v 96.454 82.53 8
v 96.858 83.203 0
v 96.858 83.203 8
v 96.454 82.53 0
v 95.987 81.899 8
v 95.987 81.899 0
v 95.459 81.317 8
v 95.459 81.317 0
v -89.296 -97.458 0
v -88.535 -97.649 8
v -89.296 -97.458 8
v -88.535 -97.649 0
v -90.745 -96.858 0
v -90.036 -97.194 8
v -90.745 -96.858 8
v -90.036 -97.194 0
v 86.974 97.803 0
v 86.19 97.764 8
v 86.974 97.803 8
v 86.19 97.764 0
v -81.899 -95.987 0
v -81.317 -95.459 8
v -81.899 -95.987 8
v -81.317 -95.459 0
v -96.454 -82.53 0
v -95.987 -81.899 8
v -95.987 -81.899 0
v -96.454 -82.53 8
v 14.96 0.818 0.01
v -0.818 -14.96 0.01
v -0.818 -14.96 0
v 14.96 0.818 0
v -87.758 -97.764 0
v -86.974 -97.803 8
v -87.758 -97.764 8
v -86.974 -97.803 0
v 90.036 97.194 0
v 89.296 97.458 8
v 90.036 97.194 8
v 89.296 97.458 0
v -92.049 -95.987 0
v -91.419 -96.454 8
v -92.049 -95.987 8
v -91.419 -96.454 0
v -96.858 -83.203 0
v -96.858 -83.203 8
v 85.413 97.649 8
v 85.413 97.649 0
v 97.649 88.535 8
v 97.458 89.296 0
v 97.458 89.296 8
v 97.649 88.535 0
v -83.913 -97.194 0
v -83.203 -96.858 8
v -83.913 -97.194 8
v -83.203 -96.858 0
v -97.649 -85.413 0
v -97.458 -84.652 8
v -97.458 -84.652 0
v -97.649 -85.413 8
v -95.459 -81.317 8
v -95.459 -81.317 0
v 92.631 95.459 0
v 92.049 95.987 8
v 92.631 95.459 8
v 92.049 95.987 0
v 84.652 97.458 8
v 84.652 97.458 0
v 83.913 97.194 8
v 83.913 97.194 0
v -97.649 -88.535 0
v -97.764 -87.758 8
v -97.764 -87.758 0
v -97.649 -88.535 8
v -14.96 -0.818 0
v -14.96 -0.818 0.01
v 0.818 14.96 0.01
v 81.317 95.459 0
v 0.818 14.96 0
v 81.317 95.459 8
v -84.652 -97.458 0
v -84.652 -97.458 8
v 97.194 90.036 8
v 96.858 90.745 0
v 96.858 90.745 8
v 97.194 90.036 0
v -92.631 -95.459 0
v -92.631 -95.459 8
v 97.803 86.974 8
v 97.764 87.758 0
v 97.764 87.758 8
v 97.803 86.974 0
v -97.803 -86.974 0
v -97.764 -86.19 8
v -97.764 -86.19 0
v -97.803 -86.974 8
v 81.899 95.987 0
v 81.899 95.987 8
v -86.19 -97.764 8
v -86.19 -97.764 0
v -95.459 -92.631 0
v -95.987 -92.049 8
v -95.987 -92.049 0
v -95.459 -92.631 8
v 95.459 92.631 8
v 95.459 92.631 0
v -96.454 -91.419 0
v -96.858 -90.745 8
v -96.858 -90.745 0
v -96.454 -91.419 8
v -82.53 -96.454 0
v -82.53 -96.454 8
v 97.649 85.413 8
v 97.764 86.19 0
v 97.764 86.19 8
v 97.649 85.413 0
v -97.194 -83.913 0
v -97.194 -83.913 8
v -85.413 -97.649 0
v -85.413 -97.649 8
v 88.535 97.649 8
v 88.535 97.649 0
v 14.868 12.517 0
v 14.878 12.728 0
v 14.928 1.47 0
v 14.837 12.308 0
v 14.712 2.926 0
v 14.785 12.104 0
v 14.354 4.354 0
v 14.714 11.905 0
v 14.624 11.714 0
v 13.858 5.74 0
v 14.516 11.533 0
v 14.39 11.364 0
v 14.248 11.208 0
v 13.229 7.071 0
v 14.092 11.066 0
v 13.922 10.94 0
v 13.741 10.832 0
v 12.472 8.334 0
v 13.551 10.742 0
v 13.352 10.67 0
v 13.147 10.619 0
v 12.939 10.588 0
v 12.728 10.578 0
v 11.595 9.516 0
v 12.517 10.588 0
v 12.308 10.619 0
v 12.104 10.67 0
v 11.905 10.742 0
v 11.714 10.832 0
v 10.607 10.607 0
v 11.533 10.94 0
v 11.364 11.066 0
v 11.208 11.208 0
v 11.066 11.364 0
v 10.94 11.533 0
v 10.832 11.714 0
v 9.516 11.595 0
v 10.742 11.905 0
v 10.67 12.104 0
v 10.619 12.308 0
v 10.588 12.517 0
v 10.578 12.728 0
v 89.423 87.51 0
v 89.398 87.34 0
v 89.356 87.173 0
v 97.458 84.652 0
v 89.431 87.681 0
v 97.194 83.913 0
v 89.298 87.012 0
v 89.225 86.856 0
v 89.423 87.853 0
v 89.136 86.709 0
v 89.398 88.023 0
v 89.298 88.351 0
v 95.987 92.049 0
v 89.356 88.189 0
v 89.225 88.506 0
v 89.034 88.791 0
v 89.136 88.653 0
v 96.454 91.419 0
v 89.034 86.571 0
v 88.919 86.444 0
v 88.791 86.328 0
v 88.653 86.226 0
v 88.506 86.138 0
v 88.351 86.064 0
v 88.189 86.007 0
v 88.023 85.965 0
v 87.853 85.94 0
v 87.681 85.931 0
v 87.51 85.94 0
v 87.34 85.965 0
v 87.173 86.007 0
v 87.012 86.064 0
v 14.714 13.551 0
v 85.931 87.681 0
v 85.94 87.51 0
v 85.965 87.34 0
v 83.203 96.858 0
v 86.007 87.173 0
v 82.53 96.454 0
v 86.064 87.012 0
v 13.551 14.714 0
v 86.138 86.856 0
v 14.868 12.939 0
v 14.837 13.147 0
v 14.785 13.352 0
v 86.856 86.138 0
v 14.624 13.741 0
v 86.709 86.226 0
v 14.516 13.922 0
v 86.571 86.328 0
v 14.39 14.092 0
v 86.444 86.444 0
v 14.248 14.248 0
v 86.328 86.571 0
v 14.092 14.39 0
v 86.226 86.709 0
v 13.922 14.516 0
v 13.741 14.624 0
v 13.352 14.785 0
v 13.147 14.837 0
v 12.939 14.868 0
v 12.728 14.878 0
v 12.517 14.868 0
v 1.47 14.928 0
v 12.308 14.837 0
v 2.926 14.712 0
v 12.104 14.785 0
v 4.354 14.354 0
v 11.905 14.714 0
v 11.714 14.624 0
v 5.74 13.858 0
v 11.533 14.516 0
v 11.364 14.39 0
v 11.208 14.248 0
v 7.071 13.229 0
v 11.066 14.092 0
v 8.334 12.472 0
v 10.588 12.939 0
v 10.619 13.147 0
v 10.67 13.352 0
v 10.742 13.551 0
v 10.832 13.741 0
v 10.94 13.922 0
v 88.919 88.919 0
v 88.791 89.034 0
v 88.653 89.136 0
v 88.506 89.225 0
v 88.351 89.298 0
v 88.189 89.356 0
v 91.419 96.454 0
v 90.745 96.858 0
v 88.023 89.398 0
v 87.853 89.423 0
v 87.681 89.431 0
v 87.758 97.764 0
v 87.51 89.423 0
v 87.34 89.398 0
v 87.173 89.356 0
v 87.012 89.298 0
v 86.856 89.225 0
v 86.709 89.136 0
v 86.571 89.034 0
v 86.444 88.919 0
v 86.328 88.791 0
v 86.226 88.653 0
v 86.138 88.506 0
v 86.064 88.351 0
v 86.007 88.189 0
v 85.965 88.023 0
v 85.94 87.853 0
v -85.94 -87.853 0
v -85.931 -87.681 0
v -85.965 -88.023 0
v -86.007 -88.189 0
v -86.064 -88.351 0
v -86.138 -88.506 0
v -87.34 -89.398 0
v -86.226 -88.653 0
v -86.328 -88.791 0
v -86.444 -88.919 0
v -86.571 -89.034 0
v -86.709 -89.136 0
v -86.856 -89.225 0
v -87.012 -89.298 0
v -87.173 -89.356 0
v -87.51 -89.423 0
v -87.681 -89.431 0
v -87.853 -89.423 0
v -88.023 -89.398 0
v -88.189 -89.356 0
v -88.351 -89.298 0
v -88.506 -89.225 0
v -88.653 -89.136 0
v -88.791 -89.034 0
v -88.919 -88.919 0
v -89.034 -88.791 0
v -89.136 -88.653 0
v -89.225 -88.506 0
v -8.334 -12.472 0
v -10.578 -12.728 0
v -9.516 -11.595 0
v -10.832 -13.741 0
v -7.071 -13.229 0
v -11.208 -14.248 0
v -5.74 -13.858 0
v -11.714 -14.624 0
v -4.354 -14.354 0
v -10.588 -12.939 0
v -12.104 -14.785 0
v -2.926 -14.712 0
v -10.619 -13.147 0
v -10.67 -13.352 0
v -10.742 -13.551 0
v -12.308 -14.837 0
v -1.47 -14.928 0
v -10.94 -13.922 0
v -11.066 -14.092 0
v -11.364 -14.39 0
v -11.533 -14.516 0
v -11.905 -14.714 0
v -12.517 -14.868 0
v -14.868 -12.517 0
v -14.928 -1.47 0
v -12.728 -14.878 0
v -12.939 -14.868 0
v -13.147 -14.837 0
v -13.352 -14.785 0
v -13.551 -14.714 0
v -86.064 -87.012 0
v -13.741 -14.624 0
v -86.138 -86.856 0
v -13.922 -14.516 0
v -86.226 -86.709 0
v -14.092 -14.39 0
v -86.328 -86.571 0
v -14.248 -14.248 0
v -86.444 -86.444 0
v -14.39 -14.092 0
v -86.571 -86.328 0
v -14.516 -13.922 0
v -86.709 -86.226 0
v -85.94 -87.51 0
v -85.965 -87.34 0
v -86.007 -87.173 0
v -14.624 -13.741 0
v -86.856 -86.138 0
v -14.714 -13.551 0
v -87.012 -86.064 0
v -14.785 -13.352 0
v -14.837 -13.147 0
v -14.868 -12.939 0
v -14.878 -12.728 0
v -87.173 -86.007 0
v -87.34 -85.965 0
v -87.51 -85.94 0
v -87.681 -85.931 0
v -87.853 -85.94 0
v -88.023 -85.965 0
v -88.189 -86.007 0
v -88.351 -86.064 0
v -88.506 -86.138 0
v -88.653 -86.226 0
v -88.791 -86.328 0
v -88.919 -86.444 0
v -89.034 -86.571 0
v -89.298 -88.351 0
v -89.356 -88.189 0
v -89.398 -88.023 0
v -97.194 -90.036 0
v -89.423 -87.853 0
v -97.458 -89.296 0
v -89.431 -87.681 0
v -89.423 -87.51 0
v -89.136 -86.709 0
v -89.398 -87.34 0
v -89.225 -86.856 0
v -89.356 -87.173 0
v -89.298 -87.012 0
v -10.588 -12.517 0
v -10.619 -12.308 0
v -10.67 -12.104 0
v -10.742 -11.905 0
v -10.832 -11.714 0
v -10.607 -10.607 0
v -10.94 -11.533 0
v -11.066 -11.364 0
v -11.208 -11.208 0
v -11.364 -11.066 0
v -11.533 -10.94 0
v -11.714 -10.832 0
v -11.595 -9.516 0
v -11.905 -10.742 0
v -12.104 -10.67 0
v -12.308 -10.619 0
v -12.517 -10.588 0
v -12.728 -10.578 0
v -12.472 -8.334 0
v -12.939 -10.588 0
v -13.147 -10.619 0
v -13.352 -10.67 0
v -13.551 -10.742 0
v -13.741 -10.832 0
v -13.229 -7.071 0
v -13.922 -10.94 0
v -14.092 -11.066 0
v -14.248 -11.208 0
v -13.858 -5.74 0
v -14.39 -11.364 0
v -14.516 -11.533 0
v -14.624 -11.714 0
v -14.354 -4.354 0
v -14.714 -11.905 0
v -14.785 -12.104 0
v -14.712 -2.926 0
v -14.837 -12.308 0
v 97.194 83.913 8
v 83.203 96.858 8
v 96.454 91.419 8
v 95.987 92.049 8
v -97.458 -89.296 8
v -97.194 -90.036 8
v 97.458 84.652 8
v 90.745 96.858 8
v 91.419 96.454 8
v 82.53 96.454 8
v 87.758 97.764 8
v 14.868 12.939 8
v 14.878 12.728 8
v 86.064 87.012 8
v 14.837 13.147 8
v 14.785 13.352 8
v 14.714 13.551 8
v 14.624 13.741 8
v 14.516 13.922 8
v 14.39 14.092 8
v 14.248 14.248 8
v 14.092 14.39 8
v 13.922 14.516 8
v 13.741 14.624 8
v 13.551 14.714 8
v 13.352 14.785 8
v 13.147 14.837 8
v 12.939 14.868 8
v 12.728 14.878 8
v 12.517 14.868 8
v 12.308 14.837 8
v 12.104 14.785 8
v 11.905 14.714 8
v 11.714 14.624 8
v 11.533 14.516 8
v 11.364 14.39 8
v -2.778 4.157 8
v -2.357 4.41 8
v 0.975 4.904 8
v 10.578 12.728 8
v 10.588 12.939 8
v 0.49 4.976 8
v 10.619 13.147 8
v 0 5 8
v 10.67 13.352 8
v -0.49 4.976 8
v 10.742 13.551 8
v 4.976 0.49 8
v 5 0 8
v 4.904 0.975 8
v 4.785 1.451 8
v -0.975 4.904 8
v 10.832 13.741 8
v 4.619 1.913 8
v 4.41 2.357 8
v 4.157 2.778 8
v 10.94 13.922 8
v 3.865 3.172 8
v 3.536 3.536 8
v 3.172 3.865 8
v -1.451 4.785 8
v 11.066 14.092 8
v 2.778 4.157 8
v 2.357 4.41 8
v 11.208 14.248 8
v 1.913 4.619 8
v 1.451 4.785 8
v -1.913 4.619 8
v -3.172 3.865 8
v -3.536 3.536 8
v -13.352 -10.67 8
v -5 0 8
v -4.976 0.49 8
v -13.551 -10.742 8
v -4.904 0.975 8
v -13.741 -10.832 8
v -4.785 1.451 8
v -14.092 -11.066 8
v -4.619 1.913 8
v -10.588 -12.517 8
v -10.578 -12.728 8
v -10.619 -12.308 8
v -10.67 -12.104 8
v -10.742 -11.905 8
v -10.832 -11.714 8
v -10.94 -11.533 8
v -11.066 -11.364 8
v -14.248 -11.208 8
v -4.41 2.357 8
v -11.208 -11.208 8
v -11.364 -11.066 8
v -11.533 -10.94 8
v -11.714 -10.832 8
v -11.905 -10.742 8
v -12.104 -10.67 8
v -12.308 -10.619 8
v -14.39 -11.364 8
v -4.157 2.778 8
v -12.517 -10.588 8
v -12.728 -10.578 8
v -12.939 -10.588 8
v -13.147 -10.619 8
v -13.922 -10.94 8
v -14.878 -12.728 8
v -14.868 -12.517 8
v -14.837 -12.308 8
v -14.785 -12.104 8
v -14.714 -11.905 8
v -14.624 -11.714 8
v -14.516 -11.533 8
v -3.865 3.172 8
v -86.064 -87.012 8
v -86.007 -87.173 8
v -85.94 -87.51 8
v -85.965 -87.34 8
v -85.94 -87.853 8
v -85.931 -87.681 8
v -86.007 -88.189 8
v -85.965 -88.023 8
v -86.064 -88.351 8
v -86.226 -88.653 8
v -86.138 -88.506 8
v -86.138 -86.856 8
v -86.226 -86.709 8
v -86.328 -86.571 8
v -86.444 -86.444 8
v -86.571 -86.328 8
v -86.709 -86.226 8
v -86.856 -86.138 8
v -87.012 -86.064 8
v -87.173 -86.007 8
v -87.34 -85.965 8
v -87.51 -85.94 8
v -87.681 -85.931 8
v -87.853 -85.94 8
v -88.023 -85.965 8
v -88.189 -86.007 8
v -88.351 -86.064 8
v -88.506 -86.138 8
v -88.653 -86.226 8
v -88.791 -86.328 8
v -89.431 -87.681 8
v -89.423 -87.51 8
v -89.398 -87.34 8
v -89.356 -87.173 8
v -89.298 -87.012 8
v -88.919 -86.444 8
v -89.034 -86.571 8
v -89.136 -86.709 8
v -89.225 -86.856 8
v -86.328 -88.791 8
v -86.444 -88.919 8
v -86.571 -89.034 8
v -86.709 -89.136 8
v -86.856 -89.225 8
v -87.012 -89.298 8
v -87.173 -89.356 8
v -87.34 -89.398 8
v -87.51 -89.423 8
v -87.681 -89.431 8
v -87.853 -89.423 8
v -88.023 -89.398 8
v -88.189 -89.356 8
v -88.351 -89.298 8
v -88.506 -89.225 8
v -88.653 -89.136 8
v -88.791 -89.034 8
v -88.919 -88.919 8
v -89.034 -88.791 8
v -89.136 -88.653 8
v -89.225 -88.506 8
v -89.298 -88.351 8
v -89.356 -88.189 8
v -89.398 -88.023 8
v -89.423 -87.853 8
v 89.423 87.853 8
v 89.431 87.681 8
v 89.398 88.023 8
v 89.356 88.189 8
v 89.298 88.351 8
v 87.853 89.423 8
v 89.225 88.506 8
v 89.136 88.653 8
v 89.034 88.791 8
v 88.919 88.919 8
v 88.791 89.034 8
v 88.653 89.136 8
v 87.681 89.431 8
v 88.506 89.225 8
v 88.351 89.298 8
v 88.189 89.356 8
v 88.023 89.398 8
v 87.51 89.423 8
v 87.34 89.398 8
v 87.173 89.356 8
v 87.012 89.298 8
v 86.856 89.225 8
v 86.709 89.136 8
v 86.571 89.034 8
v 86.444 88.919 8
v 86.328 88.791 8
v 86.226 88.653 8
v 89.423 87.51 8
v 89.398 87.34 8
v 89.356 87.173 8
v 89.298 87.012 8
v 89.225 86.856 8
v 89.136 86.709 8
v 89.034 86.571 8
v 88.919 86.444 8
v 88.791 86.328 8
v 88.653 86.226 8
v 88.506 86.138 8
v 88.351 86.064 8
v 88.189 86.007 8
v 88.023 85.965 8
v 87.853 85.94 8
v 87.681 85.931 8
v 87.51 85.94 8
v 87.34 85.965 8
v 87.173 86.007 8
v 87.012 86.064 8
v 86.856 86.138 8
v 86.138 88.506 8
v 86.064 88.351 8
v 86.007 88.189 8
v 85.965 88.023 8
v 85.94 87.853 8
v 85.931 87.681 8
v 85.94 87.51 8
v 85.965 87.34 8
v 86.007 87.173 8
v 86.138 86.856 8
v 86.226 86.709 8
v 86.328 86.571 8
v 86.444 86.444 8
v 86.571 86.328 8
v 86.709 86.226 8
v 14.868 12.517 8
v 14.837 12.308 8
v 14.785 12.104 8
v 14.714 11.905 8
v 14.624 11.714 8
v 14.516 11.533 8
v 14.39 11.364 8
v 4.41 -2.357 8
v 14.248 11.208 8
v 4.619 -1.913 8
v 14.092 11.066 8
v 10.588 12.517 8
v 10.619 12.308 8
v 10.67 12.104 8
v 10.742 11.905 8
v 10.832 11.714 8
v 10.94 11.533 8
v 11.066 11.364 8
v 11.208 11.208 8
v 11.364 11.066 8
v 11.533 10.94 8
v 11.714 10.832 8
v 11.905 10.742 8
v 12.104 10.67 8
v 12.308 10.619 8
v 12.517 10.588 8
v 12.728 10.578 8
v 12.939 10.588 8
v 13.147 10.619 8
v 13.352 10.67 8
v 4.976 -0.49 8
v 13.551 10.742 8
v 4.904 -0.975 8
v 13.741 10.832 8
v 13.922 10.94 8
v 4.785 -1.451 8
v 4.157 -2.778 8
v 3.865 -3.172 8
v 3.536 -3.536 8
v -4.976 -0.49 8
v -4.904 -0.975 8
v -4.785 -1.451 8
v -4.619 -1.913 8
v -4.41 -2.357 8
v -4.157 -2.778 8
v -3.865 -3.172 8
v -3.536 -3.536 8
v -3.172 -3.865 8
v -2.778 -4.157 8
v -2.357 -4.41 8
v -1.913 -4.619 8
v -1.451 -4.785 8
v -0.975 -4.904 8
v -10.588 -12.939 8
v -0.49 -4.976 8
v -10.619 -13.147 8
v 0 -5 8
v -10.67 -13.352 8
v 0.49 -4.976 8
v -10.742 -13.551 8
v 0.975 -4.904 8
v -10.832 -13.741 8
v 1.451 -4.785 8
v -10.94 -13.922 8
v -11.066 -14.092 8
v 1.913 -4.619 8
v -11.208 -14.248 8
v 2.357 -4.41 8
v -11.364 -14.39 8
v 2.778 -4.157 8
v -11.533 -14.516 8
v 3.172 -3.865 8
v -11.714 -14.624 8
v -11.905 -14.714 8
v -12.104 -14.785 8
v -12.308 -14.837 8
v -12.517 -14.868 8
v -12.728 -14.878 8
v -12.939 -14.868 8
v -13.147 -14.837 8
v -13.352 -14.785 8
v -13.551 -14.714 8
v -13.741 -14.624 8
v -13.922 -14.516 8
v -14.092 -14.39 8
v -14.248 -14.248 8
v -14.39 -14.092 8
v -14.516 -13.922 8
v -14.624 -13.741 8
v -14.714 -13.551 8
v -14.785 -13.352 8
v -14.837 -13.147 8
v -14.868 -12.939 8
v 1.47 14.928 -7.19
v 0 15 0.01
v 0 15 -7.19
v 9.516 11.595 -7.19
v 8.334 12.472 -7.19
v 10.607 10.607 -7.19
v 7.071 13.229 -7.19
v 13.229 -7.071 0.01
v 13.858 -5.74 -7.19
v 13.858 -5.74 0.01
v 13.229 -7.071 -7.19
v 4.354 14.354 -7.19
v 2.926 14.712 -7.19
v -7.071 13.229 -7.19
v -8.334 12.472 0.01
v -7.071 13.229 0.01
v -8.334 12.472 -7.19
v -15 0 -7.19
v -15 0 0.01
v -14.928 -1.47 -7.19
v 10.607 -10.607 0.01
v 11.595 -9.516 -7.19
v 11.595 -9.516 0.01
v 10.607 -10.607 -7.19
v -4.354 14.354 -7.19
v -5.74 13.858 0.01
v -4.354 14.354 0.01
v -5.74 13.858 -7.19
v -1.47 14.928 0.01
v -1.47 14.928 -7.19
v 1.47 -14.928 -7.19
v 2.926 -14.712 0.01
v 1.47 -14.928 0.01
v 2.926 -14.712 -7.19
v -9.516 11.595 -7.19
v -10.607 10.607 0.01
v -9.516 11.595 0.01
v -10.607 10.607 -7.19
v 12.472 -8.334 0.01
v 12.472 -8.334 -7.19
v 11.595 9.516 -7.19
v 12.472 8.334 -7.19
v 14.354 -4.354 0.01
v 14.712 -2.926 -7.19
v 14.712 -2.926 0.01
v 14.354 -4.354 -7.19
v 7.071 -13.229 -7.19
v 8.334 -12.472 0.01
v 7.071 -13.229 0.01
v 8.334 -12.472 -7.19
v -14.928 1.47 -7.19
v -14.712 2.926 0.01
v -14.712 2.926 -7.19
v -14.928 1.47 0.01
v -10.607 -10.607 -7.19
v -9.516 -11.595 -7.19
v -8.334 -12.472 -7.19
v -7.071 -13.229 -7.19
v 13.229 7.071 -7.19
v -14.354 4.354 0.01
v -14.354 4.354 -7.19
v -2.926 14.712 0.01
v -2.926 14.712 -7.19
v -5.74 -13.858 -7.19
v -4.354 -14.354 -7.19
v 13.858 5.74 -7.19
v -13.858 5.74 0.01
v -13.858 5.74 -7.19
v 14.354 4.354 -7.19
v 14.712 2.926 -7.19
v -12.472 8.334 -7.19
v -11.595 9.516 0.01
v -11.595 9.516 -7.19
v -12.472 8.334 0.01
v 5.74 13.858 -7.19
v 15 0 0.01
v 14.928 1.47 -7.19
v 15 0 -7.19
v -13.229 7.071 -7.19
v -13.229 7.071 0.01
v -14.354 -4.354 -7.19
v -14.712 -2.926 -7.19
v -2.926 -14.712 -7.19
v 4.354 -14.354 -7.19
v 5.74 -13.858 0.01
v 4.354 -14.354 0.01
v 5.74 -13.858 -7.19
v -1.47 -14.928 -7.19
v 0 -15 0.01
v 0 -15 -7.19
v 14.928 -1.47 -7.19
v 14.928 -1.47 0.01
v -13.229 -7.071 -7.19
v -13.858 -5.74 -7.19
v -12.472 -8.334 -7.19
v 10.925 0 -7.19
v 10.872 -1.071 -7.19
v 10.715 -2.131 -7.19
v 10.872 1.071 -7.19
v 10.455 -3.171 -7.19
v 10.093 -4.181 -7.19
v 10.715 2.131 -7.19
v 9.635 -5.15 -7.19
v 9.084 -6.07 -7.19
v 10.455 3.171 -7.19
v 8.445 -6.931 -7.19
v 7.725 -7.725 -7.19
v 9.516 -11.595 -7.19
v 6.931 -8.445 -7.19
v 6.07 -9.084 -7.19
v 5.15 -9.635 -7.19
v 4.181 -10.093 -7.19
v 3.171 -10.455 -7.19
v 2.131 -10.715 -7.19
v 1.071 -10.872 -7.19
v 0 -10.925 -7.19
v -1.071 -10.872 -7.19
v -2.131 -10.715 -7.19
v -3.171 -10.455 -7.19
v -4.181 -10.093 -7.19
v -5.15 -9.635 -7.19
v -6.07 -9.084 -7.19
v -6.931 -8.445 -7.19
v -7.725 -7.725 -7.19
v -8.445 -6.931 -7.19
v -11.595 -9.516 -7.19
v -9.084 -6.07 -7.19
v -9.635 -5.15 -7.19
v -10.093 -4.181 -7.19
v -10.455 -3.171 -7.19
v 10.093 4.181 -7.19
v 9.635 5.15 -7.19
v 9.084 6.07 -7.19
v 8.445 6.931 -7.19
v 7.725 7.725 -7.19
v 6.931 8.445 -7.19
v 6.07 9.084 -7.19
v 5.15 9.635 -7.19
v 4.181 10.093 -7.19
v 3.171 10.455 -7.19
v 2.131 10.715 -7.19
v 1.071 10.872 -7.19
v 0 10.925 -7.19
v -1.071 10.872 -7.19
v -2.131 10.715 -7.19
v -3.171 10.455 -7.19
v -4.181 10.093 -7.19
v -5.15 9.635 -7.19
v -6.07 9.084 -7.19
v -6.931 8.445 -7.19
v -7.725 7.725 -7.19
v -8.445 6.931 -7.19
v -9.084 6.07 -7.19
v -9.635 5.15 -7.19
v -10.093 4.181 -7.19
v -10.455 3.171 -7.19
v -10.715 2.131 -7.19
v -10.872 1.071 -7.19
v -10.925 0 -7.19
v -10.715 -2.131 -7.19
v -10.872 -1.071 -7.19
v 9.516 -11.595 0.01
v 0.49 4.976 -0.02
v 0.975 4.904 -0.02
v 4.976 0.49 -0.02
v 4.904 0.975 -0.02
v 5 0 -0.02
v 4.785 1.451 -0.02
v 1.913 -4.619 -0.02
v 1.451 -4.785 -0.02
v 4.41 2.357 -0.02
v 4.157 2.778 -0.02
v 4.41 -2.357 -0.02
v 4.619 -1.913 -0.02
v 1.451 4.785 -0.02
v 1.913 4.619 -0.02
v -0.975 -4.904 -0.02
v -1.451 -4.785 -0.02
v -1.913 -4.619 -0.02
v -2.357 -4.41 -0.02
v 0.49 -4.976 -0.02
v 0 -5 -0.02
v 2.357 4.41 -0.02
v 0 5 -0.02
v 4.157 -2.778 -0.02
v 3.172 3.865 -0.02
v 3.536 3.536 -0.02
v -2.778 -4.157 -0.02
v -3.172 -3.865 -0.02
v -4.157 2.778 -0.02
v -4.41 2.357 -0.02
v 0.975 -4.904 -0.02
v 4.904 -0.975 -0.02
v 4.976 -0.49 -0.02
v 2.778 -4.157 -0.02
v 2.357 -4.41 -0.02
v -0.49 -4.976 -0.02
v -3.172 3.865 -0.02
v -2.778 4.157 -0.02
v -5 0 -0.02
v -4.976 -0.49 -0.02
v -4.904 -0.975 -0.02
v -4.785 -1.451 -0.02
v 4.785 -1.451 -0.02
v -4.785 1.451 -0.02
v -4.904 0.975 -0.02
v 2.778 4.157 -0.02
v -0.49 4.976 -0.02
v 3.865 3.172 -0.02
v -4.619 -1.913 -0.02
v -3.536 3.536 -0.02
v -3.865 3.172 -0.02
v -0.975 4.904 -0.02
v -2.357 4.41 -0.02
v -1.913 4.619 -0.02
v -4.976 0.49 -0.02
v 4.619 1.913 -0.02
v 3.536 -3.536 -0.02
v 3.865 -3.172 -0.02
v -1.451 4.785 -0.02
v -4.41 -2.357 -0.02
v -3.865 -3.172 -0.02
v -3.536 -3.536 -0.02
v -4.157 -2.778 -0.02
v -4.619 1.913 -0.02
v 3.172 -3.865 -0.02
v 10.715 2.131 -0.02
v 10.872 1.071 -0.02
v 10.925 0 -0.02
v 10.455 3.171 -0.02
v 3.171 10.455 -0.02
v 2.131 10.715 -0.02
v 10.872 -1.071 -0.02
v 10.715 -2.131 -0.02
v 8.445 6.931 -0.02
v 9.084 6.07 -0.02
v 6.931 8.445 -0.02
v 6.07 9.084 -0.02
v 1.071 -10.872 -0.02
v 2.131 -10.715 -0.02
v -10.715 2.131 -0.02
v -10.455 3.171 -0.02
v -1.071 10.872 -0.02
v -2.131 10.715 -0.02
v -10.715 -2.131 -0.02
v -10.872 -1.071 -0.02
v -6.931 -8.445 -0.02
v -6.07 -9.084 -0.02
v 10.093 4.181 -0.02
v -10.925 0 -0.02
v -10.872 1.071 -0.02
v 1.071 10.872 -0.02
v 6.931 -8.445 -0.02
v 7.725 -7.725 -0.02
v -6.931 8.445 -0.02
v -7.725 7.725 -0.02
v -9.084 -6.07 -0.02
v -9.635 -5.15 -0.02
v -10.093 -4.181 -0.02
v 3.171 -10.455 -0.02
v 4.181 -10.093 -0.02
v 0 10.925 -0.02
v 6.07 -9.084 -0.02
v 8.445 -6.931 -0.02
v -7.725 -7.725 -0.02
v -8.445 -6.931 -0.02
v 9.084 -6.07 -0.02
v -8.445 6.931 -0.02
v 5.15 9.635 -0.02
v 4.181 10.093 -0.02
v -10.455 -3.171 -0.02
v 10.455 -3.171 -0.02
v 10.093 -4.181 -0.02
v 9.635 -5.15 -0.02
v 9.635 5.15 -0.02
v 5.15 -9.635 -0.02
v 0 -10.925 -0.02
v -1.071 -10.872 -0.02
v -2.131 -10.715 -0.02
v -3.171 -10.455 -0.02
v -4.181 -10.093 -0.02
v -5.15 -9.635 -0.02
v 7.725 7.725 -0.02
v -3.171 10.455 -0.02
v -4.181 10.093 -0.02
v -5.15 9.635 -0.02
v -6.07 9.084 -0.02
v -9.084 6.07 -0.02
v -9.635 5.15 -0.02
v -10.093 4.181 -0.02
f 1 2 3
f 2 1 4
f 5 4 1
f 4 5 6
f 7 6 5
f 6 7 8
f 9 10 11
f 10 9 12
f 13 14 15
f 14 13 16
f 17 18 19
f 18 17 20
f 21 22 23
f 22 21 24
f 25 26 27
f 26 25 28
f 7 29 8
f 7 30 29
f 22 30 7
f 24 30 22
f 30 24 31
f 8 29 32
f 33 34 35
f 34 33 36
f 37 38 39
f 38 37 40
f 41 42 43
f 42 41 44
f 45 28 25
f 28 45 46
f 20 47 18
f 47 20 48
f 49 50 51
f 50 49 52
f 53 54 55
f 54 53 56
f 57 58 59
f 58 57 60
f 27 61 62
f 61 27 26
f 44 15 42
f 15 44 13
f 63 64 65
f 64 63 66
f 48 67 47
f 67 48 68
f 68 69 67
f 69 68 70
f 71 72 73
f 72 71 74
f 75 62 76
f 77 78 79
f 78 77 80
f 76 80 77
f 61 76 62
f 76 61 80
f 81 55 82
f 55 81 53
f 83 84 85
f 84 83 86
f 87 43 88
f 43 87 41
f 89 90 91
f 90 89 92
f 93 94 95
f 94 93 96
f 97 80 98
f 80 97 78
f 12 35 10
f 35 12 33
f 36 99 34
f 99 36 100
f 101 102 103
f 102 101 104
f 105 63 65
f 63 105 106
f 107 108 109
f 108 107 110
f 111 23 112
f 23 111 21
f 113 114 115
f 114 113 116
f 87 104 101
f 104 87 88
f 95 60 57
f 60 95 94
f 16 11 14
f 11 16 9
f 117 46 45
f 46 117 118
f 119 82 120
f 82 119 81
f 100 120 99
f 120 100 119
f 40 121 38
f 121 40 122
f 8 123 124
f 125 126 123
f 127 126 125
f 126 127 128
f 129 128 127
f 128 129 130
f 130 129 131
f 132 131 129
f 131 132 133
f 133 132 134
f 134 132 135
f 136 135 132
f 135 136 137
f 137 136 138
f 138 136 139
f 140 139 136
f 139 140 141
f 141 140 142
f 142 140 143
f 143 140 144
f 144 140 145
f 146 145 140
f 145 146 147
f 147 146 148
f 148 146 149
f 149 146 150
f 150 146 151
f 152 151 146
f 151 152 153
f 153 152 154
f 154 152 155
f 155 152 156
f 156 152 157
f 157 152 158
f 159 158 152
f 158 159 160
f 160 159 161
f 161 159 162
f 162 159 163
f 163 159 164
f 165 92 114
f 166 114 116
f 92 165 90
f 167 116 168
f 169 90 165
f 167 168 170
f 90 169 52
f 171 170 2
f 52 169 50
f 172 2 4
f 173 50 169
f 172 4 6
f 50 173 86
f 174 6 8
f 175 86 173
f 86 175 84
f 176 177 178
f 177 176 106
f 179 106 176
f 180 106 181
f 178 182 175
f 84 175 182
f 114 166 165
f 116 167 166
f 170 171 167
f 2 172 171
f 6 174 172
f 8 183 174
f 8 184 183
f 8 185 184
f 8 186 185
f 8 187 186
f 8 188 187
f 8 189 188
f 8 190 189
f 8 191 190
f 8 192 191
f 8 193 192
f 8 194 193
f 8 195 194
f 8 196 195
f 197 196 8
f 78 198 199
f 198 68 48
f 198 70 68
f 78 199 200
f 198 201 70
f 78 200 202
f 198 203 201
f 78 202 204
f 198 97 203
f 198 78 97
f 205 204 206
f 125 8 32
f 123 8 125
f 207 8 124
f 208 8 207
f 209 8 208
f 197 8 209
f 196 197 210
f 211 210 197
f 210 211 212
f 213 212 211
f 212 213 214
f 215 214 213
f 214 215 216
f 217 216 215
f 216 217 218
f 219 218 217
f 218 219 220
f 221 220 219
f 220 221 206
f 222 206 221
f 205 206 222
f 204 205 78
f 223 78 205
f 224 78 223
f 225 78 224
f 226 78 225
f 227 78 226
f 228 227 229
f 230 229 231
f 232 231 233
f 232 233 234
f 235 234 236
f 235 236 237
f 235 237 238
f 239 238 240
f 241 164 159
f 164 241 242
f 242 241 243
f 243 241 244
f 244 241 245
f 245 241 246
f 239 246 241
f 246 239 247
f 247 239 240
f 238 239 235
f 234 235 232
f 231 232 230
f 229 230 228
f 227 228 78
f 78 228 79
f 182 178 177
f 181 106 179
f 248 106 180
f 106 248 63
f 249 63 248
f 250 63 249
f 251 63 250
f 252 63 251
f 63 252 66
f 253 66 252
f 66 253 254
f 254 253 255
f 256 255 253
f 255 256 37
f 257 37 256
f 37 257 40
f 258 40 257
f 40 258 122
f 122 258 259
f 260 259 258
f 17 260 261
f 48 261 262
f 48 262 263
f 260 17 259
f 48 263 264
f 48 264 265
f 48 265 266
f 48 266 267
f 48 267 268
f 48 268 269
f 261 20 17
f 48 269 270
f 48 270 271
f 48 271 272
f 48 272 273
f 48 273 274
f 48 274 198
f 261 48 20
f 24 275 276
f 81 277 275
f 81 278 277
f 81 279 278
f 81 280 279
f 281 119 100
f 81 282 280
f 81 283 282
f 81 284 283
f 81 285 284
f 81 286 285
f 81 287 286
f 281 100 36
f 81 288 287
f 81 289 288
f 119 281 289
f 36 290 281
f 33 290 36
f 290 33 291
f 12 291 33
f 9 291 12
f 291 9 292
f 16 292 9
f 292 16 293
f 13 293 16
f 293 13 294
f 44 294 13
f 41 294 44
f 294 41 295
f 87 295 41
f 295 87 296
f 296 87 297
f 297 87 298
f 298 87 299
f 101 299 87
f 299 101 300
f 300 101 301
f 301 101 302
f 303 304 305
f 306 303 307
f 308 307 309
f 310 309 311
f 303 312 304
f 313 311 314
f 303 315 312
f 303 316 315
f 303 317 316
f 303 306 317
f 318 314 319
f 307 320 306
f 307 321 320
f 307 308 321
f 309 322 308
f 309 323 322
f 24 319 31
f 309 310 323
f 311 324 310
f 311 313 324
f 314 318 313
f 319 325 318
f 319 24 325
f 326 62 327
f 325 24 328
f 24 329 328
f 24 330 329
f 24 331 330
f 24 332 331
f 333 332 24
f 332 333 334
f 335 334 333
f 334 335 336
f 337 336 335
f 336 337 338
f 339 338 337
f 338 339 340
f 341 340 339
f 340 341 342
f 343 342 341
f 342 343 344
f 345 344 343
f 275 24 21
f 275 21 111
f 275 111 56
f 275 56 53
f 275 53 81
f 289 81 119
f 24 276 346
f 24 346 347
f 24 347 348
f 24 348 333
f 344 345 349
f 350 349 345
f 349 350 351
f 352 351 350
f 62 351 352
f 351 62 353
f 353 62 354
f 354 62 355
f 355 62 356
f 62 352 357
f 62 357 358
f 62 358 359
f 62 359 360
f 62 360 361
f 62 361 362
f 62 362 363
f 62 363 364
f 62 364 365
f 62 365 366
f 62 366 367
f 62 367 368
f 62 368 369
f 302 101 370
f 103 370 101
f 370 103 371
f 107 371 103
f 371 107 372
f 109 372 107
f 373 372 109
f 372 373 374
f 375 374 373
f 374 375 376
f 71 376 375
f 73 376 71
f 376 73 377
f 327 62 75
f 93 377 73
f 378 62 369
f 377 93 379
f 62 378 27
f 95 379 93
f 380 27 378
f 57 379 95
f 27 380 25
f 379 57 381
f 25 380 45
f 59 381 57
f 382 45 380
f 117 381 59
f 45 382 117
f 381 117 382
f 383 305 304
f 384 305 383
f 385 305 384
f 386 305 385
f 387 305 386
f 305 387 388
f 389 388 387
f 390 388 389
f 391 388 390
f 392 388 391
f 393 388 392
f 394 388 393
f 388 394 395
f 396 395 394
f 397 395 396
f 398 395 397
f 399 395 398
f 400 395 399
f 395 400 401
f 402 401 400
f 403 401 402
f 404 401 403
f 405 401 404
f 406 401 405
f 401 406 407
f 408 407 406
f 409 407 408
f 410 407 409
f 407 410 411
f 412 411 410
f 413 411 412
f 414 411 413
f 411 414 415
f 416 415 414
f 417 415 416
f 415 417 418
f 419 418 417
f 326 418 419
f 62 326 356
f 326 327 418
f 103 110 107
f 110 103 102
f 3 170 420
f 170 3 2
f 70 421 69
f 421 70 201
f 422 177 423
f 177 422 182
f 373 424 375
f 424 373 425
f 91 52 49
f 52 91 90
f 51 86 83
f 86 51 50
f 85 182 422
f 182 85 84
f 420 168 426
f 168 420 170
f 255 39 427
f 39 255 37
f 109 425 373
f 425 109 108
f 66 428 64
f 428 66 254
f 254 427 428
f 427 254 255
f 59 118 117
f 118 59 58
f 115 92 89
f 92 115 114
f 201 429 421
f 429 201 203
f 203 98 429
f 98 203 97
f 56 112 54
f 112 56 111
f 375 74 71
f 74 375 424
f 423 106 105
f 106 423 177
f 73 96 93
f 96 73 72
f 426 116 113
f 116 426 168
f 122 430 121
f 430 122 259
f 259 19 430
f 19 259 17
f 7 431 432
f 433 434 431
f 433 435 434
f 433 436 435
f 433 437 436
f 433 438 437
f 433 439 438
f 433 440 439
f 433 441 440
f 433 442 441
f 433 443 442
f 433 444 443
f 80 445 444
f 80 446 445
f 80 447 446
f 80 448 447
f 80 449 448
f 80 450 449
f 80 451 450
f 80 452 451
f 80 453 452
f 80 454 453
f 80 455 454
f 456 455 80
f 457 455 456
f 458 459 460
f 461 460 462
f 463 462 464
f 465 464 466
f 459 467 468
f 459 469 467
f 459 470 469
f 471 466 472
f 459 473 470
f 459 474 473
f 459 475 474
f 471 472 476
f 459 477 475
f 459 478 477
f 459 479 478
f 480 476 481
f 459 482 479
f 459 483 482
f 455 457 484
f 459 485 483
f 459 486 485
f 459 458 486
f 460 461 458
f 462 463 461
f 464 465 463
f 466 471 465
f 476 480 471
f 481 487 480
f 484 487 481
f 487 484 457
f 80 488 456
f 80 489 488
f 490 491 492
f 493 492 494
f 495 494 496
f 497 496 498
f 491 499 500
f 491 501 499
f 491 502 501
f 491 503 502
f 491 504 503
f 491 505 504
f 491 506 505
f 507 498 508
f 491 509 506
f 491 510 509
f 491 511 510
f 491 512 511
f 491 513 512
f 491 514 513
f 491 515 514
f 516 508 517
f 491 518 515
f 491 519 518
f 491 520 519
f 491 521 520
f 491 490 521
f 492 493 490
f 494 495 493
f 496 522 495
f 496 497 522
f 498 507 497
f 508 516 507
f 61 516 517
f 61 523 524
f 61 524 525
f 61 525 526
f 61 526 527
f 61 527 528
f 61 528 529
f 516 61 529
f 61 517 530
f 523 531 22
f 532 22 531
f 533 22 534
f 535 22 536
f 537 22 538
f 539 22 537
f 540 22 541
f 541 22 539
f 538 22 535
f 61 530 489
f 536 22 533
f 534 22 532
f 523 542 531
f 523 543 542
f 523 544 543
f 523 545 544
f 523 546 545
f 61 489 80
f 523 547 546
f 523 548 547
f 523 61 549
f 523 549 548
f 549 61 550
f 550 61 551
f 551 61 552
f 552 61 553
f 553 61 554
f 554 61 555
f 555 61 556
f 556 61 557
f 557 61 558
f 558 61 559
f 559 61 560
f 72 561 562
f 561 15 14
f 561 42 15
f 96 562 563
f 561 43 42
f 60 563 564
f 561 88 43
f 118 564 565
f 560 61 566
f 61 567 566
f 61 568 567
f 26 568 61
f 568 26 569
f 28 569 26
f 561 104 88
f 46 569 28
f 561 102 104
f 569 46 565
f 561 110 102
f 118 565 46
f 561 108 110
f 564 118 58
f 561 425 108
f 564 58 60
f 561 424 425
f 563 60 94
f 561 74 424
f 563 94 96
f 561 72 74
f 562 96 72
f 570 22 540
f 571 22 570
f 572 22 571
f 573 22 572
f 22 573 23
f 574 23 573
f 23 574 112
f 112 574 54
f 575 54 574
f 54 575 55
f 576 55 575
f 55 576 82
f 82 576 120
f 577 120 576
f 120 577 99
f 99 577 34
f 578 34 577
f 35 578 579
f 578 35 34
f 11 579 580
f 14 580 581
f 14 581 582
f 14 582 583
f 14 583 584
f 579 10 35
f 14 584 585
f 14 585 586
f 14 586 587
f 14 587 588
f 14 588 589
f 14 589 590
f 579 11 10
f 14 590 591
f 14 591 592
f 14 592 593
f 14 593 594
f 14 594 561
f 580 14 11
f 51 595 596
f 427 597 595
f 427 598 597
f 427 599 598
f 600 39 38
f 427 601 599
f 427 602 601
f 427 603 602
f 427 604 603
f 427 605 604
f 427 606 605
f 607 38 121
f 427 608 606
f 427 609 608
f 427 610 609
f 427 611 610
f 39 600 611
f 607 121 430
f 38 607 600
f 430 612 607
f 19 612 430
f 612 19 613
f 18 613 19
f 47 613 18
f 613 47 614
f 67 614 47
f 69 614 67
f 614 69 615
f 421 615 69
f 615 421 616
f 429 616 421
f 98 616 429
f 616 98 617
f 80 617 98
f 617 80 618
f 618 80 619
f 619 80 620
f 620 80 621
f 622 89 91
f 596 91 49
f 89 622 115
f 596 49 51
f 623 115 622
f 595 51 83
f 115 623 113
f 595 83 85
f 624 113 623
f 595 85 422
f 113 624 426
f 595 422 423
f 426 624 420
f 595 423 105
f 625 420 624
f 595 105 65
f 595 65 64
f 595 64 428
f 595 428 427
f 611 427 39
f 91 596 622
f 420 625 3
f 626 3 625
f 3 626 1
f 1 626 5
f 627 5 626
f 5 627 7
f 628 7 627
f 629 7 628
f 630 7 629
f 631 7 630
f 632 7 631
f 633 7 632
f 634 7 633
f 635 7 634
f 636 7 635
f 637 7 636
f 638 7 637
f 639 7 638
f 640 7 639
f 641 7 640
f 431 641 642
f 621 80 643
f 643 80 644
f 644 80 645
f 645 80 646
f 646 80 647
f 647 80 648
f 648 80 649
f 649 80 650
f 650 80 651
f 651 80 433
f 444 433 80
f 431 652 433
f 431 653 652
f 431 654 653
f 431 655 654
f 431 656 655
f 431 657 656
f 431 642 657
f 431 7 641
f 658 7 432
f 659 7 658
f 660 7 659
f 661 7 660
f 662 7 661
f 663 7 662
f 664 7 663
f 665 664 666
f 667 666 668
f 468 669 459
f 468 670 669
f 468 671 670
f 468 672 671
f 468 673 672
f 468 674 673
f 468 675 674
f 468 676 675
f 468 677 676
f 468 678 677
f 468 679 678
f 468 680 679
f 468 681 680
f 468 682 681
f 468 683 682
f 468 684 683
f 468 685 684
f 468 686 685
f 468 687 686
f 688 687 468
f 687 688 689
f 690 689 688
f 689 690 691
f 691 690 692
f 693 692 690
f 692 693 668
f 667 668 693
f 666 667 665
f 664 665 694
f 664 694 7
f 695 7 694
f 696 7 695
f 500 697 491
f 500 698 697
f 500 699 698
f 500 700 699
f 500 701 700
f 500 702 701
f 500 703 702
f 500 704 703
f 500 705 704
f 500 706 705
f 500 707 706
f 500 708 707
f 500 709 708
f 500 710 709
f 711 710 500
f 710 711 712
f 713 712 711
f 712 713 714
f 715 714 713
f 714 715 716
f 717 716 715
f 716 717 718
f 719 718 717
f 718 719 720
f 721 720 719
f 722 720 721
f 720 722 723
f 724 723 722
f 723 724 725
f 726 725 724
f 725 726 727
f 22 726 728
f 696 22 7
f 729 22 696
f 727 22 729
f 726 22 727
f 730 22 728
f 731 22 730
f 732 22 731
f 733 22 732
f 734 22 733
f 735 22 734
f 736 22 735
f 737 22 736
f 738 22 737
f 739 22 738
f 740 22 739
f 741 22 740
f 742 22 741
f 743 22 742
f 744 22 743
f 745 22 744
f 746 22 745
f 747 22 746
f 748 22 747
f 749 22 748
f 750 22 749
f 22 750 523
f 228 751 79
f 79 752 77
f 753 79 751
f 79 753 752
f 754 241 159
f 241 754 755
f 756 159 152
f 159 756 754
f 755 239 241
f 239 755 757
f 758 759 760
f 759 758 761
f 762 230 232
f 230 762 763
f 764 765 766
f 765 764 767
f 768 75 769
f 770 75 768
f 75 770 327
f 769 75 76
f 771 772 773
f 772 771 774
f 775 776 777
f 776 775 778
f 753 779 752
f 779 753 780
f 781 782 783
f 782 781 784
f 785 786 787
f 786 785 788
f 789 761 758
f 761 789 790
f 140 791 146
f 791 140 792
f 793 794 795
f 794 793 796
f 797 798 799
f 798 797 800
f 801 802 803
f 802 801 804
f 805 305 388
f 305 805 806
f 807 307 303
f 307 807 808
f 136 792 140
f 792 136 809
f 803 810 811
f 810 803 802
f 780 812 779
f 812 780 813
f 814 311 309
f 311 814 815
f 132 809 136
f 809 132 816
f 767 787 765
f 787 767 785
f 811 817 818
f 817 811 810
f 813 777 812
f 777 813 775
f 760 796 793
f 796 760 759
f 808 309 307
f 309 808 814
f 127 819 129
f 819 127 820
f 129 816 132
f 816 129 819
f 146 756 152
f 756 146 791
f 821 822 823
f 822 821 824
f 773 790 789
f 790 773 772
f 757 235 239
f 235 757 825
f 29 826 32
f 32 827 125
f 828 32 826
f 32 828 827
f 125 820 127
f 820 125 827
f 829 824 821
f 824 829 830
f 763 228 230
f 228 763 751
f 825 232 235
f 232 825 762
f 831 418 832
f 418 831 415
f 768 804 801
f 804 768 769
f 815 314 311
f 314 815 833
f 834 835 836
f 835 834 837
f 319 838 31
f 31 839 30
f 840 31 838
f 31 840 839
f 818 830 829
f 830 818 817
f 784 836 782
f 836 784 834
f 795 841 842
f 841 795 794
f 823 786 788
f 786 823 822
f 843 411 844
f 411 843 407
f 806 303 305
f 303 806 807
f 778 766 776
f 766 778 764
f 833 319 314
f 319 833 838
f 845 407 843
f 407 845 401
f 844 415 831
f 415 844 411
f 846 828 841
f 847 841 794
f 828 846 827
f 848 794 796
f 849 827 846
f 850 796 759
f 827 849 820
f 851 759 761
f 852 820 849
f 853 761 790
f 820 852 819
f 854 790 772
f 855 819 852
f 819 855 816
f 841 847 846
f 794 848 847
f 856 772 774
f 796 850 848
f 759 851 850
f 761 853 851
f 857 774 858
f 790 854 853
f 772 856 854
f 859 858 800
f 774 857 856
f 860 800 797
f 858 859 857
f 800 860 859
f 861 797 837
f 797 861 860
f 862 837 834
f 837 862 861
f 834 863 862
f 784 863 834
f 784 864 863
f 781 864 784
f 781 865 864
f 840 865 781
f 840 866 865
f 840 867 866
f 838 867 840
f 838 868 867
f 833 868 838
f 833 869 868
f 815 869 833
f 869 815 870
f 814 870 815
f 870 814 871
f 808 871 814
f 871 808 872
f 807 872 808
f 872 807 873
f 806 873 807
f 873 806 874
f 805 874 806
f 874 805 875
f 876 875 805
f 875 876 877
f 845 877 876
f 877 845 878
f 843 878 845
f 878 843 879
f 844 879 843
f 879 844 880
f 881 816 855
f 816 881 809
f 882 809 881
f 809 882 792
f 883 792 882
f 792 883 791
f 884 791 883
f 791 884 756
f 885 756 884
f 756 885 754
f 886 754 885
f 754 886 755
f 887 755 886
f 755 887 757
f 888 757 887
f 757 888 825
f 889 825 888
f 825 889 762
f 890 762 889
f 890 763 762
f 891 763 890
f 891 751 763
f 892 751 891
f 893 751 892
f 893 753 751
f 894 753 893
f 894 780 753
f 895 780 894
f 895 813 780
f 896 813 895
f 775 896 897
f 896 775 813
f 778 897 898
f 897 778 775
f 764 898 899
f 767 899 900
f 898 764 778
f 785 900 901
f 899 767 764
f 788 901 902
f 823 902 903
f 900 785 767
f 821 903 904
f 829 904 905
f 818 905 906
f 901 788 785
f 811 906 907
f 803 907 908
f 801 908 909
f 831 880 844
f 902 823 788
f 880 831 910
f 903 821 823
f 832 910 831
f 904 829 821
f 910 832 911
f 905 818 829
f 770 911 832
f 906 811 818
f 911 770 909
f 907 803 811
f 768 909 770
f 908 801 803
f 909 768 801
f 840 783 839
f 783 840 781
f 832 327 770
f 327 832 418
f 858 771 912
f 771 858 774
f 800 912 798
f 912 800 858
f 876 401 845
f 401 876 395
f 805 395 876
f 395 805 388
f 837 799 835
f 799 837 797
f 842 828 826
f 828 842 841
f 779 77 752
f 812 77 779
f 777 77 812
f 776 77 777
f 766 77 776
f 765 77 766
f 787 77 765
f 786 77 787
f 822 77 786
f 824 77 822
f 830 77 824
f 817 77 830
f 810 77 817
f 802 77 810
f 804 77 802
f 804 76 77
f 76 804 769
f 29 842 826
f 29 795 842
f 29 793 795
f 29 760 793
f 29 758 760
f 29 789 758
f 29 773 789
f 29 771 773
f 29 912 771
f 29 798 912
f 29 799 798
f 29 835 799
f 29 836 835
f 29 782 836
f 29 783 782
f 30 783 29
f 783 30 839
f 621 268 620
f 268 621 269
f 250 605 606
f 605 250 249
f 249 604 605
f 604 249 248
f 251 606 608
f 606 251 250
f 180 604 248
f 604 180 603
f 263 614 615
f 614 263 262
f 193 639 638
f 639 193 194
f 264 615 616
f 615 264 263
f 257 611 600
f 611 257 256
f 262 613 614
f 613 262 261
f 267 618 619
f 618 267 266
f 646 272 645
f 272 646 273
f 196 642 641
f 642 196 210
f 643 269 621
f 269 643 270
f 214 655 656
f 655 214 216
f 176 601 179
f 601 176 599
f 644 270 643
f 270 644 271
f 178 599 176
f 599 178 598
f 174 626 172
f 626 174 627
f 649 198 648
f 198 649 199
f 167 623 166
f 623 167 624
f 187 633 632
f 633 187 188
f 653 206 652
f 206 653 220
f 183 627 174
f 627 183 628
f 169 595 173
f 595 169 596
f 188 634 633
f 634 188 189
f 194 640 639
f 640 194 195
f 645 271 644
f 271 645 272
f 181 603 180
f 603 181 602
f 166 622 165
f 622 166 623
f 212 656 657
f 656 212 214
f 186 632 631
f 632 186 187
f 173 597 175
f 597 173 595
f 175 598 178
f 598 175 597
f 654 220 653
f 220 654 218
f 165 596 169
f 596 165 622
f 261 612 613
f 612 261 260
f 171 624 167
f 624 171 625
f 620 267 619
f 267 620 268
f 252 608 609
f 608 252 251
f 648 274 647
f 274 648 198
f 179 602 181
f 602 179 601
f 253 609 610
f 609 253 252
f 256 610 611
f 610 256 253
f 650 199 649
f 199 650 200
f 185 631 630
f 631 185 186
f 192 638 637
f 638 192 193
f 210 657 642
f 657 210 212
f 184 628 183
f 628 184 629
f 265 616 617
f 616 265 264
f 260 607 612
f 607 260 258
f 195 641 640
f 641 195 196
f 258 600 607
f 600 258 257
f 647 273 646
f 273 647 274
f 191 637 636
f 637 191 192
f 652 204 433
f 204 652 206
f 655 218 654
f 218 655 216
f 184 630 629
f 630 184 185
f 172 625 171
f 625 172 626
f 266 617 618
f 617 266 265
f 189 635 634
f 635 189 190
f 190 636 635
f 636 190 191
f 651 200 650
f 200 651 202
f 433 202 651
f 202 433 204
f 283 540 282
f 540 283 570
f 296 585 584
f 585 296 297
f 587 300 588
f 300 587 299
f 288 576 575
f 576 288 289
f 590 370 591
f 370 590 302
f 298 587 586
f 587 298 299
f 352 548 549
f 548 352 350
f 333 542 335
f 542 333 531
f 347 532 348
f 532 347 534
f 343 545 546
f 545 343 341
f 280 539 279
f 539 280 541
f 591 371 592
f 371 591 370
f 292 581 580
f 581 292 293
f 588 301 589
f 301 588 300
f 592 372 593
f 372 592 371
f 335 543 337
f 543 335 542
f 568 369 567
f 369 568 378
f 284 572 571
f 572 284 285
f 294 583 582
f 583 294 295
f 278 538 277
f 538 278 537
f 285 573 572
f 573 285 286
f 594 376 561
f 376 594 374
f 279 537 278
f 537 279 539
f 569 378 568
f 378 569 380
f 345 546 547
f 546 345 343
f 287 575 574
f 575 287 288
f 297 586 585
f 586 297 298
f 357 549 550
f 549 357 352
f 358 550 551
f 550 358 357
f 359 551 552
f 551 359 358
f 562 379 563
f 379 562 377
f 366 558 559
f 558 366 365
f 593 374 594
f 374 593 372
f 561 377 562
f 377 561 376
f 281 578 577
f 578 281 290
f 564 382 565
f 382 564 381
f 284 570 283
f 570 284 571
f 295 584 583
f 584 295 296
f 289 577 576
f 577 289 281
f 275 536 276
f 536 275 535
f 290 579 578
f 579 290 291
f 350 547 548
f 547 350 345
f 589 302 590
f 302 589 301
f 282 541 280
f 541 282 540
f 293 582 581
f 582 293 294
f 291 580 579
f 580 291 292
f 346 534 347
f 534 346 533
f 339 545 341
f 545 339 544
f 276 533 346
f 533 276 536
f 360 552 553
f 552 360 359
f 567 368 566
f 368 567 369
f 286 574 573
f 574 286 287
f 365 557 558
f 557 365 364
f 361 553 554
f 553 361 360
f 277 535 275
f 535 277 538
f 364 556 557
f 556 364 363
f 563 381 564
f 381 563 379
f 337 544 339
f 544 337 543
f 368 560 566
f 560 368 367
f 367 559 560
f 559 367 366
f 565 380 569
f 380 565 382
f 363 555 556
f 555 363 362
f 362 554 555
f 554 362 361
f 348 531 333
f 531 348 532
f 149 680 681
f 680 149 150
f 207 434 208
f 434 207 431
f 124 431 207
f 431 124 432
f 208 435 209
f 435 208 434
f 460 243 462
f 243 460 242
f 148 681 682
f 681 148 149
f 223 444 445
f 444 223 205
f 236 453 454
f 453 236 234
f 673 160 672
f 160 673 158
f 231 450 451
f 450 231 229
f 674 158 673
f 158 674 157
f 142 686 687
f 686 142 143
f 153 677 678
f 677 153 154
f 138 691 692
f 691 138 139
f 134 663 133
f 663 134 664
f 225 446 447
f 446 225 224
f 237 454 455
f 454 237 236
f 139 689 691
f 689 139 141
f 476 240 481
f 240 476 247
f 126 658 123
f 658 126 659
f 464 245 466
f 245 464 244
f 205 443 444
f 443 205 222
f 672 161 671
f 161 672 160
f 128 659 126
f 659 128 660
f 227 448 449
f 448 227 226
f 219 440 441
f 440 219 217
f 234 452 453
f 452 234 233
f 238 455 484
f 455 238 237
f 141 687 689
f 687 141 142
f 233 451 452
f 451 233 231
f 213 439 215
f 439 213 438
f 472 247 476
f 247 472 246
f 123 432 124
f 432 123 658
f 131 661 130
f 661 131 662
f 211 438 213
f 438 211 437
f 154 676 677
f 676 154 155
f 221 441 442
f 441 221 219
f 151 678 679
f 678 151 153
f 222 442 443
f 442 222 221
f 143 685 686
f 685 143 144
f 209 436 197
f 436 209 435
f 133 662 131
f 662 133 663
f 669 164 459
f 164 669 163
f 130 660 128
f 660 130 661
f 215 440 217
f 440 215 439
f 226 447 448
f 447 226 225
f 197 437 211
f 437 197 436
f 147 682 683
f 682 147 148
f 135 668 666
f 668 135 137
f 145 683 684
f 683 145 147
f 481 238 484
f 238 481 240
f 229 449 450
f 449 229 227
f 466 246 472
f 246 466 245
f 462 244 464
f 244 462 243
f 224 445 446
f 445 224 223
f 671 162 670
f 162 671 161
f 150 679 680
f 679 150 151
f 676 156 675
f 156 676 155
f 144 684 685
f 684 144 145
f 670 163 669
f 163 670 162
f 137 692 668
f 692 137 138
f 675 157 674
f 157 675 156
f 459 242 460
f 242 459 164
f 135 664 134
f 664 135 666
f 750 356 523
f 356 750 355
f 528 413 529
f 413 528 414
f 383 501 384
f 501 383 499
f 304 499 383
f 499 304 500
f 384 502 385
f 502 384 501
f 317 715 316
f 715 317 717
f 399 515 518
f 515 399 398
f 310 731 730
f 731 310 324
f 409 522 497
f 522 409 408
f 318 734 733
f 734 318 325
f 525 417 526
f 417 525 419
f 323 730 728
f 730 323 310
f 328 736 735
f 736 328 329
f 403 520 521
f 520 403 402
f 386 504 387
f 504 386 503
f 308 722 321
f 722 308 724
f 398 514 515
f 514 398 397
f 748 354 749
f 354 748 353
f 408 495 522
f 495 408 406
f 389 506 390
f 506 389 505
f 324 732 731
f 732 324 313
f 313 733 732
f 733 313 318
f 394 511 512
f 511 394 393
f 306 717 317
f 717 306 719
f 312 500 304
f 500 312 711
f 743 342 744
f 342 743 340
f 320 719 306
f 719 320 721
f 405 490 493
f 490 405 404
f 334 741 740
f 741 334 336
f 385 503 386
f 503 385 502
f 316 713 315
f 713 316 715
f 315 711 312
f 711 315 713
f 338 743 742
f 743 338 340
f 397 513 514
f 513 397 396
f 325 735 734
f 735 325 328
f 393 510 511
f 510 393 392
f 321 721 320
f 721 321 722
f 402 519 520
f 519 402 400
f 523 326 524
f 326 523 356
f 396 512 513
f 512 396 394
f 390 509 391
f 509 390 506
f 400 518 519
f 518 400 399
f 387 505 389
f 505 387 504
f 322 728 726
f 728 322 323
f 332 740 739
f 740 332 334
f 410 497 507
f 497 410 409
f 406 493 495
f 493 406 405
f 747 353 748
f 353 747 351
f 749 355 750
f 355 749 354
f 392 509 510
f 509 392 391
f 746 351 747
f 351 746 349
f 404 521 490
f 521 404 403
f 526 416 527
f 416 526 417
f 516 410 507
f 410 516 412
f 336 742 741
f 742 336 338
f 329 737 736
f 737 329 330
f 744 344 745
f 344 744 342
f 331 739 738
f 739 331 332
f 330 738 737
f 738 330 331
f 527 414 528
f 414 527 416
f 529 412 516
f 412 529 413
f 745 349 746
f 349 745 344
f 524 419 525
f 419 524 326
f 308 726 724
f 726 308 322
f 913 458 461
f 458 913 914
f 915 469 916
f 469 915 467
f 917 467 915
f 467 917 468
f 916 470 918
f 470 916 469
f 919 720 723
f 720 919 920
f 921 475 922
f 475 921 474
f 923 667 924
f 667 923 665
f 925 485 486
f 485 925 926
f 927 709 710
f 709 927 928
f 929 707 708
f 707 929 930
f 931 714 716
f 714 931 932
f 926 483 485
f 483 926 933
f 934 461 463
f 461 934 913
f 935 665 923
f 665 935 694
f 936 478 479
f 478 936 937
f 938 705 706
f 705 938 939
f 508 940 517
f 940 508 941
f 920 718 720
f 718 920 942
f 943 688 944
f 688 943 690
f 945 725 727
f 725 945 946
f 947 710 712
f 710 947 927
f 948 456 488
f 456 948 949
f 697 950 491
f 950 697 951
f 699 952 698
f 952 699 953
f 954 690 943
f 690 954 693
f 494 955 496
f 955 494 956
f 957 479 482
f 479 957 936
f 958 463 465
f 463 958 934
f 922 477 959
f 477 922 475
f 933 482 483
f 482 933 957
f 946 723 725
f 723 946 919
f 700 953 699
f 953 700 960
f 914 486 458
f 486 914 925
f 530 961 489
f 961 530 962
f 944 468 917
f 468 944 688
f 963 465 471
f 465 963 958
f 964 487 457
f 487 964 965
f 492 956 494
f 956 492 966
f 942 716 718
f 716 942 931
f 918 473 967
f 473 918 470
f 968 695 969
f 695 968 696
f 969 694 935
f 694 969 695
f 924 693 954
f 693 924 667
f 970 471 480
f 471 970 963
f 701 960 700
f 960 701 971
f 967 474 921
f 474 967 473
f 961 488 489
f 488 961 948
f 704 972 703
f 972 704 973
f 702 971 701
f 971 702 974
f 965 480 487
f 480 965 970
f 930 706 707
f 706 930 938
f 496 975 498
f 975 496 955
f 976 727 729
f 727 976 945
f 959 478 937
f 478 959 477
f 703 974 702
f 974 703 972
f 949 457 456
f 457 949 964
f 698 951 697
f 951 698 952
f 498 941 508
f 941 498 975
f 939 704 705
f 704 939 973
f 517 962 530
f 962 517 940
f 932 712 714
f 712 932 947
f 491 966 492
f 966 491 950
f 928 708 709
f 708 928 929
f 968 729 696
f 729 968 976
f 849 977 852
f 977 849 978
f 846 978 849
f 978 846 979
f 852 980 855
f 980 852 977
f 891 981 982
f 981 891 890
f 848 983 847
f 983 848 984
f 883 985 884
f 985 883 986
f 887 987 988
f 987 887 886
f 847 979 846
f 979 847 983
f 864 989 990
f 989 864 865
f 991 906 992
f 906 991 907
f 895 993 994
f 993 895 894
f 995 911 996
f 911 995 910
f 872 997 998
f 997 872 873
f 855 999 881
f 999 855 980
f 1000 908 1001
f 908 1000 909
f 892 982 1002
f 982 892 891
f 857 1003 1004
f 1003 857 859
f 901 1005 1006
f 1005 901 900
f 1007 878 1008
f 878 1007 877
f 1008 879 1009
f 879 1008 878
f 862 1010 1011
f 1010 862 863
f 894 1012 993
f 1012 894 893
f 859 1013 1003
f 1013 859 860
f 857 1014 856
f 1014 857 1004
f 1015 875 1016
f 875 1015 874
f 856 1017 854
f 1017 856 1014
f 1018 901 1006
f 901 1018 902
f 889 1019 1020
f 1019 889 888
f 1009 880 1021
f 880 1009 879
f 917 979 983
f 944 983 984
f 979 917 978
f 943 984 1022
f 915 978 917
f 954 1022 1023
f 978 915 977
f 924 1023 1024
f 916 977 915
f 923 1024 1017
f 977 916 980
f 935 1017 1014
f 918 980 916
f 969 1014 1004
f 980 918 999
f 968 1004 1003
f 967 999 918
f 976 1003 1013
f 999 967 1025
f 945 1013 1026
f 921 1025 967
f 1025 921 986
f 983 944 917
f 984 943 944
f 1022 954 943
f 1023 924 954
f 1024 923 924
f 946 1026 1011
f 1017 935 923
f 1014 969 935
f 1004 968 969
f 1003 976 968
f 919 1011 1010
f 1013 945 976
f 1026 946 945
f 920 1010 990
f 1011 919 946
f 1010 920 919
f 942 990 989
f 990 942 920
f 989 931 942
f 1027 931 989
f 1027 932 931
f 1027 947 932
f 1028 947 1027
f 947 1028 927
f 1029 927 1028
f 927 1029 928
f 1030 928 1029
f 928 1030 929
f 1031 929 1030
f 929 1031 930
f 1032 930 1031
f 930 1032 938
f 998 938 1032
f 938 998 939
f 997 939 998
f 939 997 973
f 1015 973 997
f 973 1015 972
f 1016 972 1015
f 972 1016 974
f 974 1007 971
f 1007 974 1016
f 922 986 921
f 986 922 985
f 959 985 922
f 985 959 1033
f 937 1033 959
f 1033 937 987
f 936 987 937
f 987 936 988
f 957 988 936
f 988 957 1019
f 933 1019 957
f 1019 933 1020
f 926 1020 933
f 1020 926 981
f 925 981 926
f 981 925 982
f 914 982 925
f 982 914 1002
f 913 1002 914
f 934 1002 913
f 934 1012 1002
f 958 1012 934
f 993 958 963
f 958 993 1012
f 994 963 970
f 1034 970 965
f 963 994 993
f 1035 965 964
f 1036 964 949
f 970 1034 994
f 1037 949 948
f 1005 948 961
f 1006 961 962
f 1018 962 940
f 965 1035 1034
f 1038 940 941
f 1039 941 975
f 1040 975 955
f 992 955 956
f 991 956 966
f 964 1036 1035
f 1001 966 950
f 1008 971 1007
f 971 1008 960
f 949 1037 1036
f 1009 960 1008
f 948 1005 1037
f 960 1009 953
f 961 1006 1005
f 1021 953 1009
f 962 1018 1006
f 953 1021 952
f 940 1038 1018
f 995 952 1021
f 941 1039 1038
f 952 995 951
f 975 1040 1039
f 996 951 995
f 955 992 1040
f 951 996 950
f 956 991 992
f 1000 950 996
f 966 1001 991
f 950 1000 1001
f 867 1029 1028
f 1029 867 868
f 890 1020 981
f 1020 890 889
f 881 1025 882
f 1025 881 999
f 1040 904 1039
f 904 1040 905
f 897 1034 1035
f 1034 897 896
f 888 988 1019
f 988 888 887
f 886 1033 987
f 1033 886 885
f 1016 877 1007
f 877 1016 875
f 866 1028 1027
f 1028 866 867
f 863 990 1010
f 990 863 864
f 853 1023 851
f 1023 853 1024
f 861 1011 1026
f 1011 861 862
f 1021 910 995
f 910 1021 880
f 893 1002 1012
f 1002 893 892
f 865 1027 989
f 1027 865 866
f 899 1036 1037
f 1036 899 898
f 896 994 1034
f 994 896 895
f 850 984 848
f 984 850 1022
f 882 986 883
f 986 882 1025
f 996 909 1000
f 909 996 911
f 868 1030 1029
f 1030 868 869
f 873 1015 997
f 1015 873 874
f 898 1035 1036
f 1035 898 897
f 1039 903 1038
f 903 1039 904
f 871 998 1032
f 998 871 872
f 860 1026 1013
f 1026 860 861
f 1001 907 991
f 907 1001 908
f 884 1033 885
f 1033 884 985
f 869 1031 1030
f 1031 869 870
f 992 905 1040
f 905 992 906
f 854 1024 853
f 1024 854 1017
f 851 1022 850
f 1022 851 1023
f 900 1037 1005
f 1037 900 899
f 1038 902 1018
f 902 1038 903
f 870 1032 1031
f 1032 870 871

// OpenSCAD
// Gen-DA — front BEARING BRIDGE (bar endbell, 2026-10-10): a 608 boss on a 20 mm wide bar that spans the
// two frame rods at 45 deg and 45+180 deg (R = flange_bolt_r). The front bridge uses the rods at 45/225 deg, the rear
// bridge the rods at 135/315 deg, so the two bridges cross at 90 deg and the stator is held at 4 points.
// A bar instead of a full disc is what lets this big-ring kit fit ONE 410 mm plate. Print flat face DOWN (boss up, no supports).
// Brace holes (temporary M4 jack rods, R = brace_r) sit on the bar axis.
include <parameters.scad>;
$fn = 64;
bar_w = 20;
bar_len = 2 * (flange_bolt_r + 9);
module bar_2d() { offset(r=8) offset(delta=-8) square([bar_len, bar_w], center=true); }
difference() {
    rotate([0, 0, 45]) union() {
        linear_extrude(endbell_thick) bar_2d();
        translate([0, 0, -bearing_h + 0.01]) cylinder(d=30, h=bearing_h);
    }
    translate([0, 0, -bearing_h - 0.1]) cylinder(d=endbell_shaft_clear, h=50);
    translate([0, 0, -bearing_h - 0.02]) cylinder(d=bearing_d, h=bearing_h);
    for (s = [0, 180]) rotate([0, 0, 45 + s]) translate([flange_bolt_r, 0, -20]) cylinder(d=m3_clear, h=60);
    for (a = brace_angles) translate([brace_r*cos(a), brace_r*sin(a), -20]) cylinder(d=brace_d, h=50);
}
